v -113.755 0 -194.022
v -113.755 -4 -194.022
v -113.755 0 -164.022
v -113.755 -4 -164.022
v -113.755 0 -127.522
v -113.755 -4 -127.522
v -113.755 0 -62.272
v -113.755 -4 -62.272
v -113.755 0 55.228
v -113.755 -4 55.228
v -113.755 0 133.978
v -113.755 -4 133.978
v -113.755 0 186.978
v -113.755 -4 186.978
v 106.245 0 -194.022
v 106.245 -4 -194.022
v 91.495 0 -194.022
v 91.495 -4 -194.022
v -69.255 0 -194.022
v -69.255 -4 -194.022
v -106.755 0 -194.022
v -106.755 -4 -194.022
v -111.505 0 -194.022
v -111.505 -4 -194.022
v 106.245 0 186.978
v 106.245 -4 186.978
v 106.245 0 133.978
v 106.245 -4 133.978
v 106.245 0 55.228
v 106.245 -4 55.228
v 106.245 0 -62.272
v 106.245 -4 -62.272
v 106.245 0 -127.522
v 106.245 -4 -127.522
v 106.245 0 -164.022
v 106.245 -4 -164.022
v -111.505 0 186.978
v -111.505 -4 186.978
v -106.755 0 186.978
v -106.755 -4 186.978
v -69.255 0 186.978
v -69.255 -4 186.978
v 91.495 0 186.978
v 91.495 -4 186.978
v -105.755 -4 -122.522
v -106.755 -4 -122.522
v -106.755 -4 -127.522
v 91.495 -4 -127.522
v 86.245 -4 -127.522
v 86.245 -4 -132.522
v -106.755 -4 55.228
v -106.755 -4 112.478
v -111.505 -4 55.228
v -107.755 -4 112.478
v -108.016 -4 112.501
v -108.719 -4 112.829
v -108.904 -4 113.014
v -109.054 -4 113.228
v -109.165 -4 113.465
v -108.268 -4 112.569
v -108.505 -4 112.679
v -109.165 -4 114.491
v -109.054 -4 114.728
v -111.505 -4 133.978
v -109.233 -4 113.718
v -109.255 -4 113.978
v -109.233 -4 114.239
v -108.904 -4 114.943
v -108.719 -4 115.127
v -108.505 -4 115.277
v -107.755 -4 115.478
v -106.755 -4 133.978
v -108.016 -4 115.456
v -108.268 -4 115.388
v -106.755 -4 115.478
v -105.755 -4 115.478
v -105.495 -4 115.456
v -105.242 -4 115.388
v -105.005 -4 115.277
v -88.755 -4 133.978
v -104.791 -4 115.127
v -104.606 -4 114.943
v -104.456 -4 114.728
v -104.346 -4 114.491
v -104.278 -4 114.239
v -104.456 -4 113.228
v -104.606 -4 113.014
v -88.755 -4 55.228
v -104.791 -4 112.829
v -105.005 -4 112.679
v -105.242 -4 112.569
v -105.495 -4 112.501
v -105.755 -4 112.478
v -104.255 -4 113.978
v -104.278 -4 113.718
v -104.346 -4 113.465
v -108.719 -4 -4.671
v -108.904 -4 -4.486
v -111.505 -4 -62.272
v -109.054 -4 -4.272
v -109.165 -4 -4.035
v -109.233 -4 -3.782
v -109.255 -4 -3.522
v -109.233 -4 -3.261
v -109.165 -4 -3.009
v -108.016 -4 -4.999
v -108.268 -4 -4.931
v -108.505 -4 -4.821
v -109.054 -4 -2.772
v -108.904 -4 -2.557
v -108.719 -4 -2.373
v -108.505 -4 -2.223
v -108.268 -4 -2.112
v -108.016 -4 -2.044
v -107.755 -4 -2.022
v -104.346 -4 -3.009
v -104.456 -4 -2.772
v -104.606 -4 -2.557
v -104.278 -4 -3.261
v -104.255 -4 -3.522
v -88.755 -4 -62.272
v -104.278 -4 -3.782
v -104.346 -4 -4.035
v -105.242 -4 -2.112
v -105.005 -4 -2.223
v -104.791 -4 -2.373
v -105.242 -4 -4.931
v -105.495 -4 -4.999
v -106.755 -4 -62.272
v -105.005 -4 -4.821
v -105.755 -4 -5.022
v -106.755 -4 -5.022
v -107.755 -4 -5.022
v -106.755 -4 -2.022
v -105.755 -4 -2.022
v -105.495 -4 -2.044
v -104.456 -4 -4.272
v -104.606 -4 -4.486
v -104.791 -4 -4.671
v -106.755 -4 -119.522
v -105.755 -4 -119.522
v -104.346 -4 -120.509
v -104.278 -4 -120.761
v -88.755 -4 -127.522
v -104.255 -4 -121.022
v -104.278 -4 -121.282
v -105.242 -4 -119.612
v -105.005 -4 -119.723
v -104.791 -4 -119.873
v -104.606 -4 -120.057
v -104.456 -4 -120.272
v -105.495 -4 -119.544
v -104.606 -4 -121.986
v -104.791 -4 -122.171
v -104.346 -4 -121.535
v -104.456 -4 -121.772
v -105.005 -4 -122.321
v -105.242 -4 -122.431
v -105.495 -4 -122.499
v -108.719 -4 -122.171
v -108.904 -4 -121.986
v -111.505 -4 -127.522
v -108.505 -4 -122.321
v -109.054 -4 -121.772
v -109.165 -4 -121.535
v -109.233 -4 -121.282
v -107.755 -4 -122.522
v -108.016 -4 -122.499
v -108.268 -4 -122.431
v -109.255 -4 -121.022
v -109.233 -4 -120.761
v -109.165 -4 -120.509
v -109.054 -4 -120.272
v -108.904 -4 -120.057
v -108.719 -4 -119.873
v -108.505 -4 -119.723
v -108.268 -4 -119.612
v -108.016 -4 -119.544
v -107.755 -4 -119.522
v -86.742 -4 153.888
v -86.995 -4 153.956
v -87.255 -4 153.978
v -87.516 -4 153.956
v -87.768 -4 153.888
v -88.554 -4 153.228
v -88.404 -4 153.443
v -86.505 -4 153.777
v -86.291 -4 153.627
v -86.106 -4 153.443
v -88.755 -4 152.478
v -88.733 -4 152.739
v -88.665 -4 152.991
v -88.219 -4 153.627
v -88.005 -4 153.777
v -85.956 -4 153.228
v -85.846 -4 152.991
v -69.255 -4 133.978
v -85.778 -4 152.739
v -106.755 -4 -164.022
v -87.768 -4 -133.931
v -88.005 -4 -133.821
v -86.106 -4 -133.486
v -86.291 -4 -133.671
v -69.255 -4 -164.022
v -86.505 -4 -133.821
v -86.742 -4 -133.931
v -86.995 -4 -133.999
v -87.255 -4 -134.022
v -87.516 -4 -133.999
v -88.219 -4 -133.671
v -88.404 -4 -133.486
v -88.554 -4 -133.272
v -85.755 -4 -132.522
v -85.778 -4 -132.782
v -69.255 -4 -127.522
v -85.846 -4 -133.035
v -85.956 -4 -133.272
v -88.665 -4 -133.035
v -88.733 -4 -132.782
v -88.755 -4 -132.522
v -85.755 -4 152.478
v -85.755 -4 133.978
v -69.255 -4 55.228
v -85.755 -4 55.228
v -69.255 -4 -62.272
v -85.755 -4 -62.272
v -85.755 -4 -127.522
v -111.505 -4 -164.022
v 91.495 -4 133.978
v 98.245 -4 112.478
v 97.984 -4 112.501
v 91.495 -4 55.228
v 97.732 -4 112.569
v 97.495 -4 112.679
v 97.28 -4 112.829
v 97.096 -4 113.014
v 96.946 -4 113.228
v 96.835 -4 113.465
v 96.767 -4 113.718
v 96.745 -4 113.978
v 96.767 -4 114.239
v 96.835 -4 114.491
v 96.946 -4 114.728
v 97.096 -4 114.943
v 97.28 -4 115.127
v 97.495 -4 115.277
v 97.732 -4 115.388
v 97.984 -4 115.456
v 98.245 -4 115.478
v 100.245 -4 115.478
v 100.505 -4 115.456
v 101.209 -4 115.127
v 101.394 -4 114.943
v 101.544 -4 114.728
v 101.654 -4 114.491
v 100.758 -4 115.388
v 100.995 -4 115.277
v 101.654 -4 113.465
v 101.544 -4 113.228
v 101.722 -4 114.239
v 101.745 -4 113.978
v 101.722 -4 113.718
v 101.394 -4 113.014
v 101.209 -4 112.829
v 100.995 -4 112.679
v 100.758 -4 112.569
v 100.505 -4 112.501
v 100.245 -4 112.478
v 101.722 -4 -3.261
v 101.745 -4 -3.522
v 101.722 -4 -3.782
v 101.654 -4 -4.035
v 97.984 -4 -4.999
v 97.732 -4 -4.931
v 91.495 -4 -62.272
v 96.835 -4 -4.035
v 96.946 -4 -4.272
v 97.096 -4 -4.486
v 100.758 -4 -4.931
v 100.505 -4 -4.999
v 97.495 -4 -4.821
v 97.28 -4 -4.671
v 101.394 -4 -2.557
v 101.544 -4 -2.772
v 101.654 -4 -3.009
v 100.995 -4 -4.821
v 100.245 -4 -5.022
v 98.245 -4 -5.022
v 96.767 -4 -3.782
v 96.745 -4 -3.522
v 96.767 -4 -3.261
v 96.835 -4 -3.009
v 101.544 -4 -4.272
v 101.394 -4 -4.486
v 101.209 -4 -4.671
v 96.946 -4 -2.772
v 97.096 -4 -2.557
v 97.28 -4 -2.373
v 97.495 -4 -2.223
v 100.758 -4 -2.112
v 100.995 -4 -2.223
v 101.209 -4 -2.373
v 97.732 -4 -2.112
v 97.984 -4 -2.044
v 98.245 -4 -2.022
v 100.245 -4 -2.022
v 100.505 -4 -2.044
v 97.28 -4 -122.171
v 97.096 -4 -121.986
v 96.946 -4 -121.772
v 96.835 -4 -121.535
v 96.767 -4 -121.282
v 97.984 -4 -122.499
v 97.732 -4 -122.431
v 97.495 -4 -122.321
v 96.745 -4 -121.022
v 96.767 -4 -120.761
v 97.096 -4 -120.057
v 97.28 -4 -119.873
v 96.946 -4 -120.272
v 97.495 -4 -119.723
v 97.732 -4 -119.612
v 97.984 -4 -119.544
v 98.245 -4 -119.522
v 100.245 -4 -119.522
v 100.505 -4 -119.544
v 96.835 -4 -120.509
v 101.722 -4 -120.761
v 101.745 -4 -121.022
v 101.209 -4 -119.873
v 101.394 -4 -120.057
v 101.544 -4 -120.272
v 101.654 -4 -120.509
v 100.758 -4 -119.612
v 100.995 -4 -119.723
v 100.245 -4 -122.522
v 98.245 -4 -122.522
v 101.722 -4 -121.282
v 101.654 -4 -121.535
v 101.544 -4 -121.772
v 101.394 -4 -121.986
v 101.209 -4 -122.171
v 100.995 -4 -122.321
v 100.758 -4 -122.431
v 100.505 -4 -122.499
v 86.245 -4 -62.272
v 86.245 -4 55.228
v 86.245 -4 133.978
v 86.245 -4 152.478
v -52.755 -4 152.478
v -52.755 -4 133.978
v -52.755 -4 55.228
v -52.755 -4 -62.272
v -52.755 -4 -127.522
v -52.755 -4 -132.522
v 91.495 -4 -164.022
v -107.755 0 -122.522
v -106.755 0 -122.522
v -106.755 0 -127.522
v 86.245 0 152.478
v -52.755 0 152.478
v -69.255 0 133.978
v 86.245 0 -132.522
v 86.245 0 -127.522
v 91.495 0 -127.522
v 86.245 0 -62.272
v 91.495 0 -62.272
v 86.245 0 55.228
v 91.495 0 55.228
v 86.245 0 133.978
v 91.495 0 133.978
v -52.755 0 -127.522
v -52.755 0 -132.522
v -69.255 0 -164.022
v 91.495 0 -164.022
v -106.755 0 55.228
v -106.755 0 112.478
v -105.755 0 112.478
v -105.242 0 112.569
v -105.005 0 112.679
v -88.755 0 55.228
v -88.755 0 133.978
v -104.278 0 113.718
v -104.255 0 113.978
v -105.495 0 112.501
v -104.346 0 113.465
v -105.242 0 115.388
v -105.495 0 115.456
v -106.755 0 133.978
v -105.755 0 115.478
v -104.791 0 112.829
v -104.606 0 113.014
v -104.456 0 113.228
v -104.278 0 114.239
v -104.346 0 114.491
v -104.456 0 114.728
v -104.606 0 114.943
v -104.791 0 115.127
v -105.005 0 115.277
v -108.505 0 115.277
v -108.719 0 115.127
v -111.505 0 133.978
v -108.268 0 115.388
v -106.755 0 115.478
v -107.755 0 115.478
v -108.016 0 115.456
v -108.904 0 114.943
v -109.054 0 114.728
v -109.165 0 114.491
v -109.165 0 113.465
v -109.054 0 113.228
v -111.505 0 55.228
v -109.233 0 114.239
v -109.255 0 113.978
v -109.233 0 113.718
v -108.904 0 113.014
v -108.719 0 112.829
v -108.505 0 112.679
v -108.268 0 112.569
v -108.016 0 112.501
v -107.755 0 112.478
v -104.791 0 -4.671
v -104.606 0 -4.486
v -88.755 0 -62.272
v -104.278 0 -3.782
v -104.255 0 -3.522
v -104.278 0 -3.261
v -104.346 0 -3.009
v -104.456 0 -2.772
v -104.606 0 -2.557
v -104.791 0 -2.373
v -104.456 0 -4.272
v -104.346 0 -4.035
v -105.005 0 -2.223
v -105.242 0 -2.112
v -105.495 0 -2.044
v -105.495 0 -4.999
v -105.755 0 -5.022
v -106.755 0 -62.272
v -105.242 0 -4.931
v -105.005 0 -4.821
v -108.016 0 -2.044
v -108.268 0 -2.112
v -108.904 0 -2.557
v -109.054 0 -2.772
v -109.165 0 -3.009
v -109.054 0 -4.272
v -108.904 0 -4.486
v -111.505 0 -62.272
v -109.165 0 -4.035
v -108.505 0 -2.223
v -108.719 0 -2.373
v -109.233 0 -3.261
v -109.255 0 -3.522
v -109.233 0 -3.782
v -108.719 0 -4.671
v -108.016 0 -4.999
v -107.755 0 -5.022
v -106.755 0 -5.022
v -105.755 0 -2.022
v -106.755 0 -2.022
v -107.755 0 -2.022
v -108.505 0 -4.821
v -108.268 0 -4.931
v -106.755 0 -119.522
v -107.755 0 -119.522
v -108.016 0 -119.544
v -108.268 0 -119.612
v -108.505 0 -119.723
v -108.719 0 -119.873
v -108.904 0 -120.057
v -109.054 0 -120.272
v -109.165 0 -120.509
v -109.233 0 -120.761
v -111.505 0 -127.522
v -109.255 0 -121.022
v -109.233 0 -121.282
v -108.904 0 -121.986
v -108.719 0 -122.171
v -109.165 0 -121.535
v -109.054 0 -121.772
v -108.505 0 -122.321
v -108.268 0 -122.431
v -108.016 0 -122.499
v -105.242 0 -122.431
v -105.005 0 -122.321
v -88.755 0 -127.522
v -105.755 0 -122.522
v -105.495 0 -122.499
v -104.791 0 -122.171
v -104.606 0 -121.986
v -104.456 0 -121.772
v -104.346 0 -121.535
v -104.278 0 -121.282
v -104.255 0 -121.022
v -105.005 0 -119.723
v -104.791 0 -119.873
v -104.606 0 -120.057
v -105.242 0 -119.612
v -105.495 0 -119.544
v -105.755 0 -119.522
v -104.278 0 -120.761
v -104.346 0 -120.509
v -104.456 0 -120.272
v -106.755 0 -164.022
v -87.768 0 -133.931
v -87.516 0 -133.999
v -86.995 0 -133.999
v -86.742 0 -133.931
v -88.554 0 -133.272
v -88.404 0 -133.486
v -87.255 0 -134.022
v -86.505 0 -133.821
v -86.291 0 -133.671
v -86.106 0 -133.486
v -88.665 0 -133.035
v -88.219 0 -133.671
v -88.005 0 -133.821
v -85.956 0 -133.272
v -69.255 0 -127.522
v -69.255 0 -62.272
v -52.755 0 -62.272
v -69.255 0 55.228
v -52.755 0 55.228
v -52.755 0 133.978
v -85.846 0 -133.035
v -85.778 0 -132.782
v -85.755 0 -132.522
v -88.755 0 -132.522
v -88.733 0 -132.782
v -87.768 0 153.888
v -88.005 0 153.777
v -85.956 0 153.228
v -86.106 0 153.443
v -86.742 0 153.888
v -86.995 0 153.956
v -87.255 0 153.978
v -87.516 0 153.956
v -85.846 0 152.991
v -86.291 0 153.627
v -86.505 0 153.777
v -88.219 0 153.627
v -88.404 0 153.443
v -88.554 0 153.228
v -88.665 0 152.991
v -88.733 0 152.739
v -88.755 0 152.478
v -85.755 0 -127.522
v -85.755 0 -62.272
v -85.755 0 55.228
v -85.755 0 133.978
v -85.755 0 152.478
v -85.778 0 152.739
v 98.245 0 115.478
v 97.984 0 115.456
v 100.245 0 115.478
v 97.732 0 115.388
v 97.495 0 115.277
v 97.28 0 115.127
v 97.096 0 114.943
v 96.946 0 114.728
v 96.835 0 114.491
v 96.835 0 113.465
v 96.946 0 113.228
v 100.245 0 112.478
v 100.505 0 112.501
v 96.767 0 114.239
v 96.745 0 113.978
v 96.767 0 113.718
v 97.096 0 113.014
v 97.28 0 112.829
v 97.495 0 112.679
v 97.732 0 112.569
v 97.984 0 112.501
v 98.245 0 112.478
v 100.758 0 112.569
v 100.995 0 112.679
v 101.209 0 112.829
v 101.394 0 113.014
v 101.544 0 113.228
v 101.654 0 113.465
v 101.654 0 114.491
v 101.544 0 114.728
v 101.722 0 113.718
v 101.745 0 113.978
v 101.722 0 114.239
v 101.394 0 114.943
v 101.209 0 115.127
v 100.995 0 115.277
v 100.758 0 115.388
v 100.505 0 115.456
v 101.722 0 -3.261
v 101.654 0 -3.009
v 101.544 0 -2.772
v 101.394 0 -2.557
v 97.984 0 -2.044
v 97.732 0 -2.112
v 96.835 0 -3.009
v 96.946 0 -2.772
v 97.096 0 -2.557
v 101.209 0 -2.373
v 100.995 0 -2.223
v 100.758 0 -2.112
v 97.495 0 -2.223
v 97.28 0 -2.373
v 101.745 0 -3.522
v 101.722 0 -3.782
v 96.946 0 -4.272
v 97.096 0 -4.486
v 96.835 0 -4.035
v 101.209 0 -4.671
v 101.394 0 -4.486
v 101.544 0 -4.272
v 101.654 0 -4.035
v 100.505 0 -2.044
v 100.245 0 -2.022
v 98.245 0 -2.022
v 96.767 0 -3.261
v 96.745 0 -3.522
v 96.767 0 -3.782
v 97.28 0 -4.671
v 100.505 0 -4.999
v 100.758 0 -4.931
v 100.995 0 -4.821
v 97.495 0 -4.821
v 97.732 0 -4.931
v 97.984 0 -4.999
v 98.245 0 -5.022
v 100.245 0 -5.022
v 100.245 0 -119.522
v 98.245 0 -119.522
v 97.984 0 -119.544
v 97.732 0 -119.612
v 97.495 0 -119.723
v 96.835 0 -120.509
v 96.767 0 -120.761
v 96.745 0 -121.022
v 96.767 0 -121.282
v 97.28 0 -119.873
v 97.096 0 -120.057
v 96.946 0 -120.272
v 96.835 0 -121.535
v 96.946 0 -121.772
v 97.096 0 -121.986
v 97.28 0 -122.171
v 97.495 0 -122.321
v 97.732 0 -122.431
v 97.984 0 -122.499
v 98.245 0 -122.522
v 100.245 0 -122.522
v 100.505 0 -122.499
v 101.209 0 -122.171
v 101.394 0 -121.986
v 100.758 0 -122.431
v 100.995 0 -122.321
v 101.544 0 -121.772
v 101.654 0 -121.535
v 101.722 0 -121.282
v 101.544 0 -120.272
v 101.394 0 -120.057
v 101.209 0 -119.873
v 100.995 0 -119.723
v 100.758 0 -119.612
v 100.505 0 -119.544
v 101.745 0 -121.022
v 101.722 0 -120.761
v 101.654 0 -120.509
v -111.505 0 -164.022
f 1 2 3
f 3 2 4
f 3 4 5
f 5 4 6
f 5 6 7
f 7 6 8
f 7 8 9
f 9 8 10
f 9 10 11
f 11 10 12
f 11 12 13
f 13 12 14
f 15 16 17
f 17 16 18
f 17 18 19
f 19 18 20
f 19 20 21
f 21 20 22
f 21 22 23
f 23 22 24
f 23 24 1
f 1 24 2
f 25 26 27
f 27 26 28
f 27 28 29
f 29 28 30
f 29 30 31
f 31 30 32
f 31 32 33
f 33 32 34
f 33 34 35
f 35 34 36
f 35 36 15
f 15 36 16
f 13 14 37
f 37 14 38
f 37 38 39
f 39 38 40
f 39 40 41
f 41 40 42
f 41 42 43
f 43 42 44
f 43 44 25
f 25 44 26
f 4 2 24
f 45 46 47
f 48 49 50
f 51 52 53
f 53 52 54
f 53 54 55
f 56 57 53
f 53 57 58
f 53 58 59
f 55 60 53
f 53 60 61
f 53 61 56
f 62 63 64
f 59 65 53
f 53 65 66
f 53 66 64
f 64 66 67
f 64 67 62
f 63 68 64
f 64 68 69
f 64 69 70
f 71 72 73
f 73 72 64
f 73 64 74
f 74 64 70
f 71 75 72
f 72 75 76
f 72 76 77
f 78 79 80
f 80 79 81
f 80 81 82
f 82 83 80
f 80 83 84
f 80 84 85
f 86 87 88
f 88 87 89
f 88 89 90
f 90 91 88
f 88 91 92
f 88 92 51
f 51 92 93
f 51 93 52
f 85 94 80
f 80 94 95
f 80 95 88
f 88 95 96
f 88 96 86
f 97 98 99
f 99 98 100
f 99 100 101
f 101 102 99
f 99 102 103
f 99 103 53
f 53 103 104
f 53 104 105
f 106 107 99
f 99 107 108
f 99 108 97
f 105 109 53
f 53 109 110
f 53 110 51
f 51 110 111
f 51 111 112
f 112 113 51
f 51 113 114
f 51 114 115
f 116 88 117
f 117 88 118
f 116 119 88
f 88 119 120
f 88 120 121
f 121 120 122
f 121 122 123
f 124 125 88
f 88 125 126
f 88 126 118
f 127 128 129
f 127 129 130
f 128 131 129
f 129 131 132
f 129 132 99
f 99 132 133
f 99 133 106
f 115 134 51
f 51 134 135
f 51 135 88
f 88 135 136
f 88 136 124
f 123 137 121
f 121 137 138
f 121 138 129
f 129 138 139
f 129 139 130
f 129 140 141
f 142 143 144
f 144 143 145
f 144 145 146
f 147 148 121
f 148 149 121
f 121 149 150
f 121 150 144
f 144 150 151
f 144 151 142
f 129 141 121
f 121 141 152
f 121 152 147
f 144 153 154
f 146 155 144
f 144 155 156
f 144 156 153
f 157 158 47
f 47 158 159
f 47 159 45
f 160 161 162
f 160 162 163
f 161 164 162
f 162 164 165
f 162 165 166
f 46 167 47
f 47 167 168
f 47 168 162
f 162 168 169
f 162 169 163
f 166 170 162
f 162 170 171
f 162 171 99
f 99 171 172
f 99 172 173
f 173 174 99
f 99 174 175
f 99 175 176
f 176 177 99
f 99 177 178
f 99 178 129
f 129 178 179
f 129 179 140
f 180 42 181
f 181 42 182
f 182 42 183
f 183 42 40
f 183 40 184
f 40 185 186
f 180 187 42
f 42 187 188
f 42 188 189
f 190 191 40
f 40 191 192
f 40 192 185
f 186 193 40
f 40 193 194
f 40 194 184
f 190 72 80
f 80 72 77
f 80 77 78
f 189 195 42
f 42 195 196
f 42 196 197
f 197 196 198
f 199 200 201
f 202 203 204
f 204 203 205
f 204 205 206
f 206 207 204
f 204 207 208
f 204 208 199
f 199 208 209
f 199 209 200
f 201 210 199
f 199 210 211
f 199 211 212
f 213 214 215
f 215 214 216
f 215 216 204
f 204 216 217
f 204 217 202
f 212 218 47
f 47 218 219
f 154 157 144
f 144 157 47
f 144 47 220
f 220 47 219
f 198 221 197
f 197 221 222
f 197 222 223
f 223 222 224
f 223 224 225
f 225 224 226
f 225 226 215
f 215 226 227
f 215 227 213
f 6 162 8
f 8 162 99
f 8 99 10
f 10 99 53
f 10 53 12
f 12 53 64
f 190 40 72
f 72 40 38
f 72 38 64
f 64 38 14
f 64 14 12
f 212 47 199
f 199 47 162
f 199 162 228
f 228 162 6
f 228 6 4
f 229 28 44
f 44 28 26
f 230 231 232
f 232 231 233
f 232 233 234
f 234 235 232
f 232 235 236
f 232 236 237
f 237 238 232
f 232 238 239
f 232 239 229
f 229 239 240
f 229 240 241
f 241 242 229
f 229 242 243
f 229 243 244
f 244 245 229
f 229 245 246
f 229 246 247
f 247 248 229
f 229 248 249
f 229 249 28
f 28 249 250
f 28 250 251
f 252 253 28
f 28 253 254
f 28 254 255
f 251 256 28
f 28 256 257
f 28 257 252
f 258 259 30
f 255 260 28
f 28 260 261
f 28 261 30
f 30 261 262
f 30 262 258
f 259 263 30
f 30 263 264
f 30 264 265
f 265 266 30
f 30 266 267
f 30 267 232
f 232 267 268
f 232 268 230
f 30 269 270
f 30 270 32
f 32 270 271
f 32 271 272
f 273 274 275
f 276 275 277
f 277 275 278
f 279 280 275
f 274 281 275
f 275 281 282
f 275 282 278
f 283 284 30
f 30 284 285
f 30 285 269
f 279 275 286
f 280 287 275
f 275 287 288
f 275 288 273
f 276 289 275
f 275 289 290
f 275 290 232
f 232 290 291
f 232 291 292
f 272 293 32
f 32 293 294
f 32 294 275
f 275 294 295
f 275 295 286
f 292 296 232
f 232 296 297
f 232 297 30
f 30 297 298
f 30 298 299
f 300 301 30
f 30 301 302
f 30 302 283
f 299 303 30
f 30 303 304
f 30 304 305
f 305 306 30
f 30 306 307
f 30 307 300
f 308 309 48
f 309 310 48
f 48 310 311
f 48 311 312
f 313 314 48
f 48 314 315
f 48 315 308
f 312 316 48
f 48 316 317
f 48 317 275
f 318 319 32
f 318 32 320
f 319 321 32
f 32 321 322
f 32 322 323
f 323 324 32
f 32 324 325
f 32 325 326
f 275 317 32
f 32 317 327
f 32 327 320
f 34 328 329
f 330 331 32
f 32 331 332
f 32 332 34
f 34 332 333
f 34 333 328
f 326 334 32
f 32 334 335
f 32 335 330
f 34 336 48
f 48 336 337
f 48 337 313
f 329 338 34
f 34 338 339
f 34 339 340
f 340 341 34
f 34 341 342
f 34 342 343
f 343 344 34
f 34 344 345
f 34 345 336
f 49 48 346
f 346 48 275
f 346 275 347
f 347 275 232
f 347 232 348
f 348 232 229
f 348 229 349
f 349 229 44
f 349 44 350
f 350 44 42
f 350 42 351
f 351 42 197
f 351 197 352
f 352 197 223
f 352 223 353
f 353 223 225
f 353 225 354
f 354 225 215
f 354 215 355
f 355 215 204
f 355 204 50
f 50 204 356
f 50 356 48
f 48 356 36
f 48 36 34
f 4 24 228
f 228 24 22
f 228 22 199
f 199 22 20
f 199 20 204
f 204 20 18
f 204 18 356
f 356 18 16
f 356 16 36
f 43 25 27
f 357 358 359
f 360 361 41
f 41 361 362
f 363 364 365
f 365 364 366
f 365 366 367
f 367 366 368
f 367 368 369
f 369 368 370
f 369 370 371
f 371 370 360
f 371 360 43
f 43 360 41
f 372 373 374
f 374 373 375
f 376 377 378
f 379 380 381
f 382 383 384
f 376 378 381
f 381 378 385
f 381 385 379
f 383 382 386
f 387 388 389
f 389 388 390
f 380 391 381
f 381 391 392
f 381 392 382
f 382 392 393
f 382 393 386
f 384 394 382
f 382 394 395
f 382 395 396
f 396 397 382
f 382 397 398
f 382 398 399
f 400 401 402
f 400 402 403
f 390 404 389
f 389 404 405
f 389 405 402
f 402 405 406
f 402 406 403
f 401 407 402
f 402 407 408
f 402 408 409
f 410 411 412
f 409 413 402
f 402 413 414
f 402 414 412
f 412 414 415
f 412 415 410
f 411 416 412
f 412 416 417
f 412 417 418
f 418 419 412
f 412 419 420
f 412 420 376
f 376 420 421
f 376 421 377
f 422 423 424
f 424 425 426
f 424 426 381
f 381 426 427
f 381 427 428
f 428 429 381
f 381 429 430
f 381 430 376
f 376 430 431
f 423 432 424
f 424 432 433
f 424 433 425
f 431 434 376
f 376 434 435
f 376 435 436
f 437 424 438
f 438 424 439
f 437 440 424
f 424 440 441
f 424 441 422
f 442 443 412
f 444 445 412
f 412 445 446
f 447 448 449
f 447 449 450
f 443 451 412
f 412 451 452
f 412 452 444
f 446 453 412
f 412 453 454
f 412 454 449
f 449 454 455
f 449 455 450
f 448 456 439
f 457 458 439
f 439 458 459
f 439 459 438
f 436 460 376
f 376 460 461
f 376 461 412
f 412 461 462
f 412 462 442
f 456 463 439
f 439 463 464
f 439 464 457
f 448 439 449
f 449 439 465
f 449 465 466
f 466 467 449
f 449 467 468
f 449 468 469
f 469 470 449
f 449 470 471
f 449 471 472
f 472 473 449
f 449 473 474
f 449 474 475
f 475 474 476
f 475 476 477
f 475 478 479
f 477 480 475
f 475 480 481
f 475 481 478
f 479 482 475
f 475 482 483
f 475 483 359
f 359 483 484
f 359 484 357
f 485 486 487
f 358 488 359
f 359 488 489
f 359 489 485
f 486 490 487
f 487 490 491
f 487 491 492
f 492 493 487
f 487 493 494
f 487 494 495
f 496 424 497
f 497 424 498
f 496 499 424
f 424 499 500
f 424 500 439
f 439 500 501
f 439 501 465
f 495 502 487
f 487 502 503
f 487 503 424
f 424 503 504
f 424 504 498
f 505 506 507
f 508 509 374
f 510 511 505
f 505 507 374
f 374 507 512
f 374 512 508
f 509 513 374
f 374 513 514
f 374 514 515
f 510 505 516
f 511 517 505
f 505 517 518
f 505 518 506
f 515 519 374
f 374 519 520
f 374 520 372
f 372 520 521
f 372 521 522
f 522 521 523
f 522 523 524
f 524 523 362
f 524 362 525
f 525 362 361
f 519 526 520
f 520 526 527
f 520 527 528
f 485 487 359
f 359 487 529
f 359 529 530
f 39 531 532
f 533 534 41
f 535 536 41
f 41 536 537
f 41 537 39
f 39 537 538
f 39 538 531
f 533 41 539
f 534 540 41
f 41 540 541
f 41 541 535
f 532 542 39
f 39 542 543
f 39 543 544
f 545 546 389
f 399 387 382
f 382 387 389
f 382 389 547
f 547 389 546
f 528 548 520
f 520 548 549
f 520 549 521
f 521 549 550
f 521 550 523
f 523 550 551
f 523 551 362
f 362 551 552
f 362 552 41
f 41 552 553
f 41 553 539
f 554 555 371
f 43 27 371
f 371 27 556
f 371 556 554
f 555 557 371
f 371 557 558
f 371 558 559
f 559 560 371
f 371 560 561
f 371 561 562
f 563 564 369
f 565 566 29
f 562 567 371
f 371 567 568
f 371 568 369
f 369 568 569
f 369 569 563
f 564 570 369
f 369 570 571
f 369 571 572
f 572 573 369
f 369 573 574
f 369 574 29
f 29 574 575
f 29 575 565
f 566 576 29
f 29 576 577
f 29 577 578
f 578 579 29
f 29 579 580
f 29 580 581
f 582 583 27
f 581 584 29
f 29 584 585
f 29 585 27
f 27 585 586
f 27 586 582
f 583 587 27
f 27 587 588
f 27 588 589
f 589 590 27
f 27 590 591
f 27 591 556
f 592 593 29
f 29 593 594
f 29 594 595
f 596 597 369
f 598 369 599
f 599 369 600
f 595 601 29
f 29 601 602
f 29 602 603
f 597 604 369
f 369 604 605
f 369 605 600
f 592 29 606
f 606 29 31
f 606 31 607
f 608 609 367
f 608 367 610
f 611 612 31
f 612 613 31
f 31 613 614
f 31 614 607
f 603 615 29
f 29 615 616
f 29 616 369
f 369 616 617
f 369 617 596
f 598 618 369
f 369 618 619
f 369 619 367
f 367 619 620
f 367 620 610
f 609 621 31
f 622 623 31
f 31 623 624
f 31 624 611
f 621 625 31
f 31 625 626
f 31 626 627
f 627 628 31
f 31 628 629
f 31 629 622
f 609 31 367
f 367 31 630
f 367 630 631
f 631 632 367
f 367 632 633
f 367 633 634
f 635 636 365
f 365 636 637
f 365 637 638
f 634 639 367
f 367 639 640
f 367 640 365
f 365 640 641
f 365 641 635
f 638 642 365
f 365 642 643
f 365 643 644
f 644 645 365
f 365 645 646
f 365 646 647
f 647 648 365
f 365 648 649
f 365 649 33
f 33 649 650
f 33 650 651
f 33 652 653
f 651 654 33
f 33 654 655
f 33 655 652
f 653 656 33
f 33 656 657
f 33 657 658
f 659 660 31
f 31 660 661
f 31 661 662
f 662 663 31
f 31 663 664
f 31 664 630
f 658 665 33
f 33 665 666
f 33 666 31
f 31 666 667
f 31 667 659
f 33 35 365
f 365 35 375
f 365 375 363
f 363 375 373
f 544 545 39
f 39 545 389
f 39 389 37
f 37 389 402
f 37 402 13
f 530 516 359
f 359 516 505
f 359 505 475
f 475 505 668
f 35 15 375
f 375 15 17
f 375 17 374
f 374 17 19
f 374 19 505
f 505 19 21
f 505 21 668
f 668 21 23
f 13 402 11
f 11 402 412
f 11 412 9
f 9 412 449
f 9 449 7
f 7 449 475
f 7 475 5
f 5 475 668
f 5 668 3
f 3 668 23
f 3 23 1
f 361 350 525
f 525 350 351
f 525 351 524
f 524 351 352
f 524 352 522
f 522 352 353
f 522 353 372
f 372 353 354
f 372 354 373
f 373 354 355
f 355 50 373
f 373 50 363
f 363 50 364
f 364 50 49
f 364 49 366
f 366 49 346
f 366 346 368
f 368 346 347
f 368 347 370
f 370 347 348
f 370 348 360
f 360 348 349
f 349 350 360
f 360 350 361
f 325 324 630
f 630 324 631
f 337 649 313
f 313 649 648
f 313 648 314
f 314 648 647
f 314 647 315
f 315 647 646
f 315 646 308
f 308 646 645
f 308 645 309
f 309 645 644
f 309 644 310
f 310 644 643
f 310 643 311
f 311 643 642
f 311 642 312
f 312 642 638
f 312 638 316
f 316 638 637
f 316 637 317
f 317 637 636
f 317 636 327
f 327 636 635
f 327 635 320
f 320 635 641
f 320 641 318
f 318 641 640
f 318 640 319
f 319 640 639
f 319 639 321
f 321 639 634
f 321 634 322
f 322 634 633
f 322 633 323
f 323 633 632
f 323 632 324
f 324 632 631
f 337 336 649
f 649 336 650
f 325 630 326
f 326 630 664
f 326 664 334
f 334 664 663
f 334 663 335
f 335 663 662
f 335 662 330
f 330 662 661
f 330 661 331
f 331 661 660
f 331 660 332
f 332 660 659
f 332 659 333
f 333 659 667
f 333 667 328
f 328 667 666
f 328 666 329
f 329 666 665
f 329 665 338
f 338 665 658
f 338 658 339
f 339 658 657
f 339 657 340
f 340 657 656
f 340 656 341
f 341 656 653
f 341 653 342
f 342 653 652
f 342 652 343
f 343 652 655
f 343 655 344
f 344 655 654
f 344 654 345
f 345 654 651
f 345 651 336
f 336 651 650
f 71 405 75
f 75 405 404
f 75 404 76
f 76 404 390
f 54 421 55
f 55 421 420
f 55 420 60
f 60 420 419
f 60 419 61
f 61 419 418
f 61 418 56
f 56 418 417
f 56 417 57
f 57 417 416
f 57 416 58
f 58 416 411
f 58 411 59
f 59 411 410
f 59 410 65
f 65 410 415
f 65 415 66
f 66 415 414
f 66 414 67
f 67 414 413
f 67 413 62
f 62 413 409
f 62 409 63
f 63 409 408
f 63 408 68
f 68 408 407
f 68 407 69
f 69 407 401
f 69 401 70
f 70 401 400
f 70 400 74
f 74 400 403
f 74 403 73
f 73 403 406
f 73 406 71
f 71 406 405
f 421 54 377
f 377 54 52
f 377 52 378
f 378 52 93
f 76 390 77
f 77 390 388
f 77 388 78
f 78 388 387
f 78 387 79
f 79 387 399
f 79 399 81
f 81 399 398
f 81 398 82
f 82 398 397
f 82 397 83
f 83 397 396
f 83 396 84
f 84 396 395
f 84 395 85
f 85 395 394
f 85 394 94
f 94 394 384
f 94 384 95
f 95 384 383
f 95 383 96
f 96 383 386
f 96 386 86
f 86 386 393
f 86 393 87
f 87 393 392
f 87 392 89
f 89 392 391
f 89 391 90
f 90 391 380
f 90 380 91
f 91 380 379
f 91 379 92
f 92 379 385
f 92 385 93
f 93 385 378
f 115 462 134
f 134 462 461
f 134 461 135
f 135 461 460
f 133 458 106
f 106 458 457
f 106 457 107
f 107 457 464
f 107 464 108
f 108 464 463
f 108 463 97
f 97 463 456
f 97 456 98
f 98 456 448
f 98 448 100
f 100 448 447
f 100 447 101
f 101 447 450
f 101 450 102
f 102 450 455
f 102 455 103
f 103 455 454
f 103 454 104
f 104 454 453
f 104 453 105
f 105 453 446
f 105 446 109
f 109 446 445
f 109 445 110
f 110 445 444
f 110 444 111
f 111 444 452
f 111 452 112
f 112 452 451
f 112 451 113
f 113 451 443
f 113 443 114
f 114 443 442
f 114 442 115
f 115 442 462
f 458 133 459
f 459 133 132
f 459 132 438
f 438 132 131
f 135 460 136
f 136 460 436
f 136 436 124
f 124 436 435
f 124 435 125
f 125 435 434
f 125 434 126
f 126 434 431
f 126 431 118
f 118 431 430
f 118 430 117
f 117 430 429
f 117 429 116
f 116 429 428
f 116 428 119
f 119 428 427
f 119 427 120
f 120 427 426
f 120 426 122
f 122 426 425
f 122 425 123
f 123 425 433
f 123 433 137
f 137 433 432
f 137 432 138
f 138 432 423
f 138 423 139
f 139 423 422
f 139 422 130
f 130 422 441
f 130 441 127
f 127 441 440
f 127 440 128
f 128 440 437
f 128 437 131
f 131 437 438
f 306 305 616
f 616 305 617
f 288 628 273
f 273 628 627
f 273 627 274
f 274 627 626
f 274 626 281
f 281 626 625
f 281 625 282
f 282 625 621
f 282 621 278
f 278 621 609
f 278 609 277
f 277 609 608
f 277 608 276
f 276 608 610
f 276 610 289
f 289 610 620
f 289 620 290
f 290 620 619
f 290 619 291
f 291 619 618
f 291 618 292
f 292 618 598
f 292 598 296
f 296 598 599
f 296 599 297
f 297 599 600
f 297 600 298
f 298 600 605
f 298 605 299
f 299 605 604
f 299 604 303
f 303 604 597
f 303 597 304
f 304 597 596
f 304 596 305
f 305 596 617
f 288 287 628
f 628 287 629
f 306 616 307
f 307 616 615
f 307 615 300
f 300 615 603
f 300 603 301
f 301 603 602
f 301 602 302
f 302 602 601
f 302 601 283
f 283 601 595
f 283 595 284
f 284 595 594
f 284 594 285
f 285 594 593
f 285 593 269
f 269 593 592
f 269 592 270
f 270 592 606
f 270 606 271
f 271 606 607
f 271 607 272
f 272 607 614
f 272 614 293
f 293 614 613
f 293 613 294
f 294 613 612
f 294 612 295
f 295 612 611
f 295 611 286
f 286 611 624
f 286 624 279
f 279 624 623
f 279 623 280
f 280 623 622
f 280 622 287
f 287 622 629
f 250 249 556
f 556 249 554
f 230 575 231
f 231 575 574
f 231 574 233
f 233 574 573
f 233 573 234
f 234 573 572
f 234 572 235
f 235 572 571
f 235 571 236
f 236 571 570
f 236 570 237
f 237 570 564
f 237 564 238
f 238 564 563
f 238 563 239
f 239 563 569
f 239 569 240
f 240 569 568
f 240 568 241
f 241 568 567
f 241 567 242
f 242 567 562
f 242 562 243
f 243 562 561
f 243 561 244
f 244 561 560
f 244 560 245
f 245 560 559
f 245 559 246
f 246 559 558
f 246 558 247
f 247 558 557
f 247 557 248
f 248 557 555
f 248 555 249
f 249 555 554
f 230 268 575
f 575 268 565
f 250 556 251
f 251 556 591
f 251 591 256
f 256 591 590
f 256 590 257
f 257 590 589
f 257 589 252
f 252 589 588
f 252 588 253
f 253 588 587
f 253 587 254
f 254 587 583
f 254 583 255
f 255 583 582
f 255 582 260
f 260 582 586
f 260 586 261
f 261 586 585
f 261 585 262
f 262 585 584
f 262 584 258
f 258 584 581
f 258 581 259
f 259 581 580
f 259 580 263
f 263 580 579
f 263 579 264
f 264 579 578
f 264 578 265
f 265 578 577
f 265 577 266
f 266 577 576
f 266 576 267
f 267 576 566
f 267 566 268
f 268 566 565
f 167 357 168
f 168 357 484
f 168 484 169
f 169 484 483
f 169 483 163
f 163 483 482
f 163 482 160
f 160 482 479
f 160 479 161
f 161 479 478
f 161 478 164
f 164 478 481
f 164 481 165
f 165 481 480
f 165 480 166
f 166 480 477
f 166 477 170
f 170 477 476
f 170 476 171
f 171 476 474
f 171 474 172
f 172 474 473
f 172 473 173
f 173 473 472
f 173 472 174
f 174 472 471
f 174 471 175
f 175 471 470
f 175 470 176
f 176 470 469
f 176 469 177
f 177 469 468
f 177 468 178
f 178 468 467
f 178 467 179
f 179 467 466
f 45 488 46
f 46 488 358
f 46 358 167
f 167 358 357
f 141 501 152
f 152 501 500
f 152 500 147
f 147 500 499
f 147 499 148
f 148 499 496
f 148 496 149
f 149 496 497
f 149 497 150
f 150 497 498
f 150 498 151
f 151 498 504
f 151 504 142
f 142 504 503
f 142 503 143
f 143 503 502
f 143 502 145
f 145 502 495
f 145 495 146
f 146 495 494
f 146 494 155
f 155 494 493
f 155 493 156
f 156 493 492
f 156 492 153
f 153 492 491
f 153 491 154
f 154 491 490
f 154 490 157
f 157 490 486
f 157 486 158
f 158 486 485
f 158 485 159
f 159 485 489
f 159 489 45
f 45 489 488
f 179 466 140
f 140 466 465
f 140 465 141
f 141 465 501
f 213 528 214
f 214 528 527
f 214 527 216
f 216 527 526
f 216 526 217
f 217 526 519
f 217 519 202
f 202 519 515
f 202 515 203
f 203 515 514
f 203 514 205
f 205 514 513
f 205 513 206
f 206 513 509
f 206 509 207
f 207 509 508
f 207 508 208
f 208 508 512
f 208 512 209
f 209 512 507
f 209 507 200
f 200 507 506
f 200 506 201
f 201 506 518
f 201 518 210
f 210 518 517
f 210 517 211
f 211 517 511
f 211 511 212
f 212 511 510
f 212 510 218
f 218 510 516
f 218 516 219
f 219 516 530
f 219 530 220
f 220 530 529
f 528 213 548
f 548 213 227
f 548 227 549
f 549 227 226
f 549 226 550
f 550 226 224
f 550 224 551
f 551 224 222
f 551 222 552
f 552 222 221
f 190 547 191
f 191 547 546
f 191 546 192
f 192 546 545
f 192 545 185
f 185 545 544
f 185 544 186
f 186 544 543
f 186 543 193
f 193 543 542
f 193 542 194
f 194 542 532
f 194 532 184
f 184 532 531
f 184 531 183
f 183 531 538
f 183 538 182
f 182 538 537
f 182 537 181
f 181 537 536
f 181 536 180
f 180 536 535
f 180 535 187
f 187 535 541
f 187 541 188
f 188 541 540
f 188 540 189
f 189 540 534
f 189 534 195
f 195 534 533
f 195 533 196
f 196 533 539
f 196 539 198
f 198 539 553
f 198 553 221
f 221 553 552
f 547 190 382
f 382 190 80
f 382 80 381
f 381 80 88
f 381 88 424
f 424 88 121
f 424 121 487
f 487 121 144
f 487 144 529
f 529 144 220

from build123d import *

# Parameters (mm, degrees)
SKETCH_1_W      = 220
SKETCH_1_H      = 381
SKETCH_1_W_2    = 139
SKETCH_1_H_2    = 285
EXTRUDE_1_DEPTH = 4


with BuildPart() as part:
    # 草圖1 → 填料-伸長1 (new body)
    with BuildSketch(Plane.XZ.offset(4)):
        with Locations((-3.755314961, -3.521610711)):
            Rectangle(SKETCH_1_W, SKETCH_1_H)
        with BuildLine():
            Line((-85.755314961, 152.478389289), (-85.755314961, -132.521610711))
            ThreePointArc((-85.755314961, -132.521610711), (-87.255314961, -134.021610711), (-88.755314961, -132.521610711))
            Line((-88.755314961, -132.521610711), (-88.755314961, 152.478389289))
            ThreePointArc((-88.755314961, 152.478389289), (-87.255314961, 153.978389289), (-85.755314961, 152.478389289))
        make_face(mode=Mode.SUBTRACT)
        with BuildLine():
            Line((-105.755314961, -122.521610711), (-107.755314961, -122.521610711))
            ThreePointArc((-107.755314961, -122.521610711), (-109.255314961, -121.021610711), (-107.755314961, -119.521610711))
            Line((-107.755314961, -119.521610711), (-105.755314961, -119.521610711))
            ThreePointArc((-105.755314961, -119.521610711), (-104.255314961, -121.021610711), (-105.755314961, -122.521610711))
        make_face(mode=Mode.SUBTRACT)
        with BuildLine():
            Line((98.244685039, 115.478389289), (100.244685039, 115.478389289))
            ThreePointArc((100.244685039, 115.478389289), (101.744685039, 113.978389289), (100.244685039, 112.478389289))
            Line((100.244685039, 112.478389289), (98.244685039, 112.478389289))
            ThreePointArc((98.244685039, 112.478389289), (96.744685039, 113.978389289), (98.244685039, 115.478389289))
        make_face(mode=Mode.SUBTRACT)
        with BuildLine():
            Line((98.244685039, -2.021610711), (100.244685039, -2.021610711))
            ThreePointArc((100.244685039, -2.021610711), (101.744685039, -3.521610711), (100.244685039, -5.021610711))
            Line((100.244685039, -5.021610711), (98.244685039, -5.021610711))
            ThreePointArc((98.244685039, -5.021610711), (96.744685039, -3.521610711), (98.244685039, -2.021610711))
        make_face(mode=Mode.SUBTRACT)
        with BuildLine():
            Line((-107.755314961, -2.021610711), (-105.755314961, -2.021610711))
            ThreePointArc((-105.755314961, -2.021610711), (-104.255314961, -3.521610711), (-105.755314961, -5.021610711))
            Line((-105.755314961, -5.021610711), (-107.755314961, -5.021610711))
            ThreePointArc((-107.755314961, -5.021610711), (-109.255314961, -3.521610711), (-107.755314961, -2.021610711))
        make_face(mode=Mode.SUBTRACT)
        with BuildLine():
            Line((-107.755314961, 115.478389289), (-105.755314961, 115.478389289))
            ThreePointArc((-105.755314961, 115.478389289), (-104.255314961, 113.978389289), (-105.755314961, 112.478389289))
            Line((-105.755314961, 112.478389289), (-107.755314961, 112.478389289))
            ThreePointArc((-107.755314961, 112.478389289), (-109.255314961, 113.978389289), (-107.755314961, 115.478389289))
        make_face(mode=Mode.SUBTRACT)
        with BuildLine():
            Line((98.244685039, -119.521610711), (100.244685039, -119.521610711))
            ThreePointArc((100.244685039, -119.521610711), (101.744685039, -121.021610711), (100.244685039, -122.521610711))
            Line((100.244685039, -122.521610711), (98.244685039, -122.521610711))
            ThreePointArc((98.244685039, -122.521610711), (96.744685039, -121.021610711), (98.244685039, -119.521610711))
        make_face(mode=Mode.SUBTRACT)
        with Locations((16.744685039, 9.978389289)):
            Rectangle(SKETCH_1_W_2, SKETCH_1_H_2, mode=Mode.SUBTRACT)
    extrude(amount=-EXTRUDE_1_DEPTH)


solid = part.part
